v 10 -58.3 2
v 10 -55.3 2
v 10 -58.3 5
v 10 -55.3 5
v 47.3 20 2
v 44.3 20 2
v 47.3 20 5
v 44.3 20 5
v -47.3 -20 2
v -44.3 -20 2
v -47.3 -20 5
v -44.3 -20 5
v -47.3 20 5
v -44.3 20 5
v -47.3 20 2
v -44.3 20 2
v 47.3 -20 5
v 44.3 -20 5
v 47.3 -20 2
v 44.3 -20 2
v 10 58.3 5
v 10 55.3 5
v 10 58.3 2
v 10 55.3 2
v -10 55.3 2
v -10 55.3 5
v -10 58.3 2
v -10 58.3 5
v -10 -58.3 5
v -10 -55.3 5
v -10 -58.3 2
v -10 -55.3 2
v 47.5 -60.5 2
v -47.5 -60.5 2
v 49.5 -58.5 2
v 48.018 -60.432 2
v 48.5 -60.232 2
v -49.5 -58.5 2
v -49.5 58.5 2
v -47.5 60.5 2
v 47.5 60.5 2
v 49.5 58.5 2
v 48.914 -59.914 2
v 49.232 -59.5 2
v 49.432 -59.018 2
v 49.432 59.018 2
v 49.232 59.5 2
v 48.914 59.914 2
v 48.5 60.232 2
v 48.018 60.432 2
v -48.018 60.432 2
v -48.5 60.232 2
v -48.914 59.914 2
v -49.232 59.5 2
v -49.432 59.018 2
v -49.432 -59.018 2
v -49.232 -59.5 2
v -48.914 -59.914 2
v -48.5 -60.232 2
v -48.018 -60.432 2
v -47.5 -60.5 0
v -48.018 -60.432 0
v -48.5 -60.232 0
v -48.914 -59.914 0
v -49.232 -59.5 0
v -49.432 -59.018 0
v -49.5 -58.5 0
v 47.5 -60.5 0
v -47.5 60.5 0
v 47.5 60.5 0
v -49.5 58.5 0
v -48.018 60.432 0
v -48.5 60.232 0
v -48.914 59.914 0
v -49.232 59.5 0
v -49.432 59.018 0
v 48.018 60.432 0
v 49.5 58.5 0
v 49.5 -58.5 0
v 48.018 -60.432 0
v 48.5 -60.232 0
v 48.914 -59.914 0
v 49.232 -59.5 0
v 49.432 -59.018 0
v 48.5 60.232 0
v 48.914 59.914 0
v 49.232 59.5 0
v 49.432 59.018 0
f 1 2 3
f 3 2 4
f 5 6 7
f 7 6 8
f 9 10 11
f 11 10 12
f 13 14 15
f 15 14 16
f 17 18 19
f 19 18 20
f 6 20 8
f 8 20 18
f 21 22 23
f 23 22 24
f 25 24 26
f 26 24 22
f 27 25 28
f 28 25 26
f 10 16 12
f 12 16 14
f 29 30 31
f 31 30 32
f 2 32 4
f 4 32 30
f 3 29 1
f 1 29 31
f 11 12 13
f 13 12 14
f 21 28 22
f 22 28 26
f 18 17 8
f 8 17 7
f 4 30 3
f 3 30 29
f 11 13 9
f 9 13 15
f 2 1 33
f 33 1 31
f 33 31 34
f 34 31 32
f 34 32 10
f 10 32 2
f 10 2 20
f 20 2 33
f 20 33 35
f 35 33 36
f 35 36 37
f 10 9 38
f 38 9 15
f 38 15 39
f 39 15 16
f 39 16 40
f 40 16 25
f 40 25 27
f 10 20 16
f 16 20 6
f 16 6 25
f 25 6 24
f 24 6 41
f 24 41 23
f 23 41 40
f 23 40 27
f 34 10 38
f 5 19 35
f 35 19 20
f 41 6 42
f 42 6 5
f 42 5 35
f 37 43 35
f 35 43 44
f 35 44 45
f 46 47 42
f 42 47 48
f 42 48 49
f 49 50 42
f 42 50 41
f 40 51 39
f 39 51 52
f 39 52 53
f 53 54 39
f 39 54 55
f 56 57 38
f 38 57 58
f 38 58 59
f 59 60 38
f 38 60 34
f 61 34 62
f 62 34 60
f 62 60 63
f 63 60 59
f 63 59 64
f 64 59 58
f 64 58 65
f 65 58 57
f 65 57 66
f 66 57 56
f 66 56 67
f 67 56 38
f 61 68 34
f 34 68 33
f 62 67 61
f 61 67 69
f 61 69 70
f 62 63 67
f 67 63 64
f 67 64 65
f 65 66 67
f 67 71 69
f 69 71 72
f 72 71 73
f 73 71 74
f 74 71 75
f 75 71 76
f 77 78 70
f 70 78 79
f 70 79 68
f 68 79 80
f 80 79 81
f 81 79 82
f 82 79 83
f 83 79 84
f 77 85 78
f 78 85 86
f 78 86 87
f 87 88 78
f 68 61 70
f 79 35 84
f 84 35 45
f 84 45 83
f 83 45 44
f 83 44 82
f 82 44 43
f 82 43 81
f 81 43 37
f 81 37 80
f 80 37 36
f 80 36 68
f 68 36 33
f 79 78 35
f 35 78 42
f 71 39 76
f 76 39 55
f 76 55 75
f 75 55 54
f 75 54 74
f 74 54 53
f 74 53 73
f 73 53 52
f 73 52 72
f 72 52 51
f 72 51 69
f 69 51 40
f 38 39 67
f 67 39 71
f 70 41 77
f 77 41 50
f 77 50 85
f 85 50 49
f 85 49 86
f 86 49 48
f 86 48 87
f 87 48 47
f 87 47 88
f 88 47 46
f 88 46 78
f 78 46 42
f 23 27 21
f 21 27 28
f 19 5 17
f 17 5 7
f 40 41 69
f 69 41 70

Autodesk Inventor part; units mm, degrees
ref_plane "YZ Plane" through (0, 0, 0) normal (1, 0, 0) x (0, 1, 0)
ref_plane "XZ Plane" through (0, 0, 0) normal (0, 1, 0) x (-1, 0, 0)
ref_plane "XY Plane" through (0, 0, 0) normal (0, 0, 1) x (1, 0, 0)
sketch "Sketch1" plane through (0, 0, 0) normal (0, 0, 1) x (1, 0, 0)
  line L0 (-49.5, 60.5) -> (49.5, 60.5)
  line L1 (49.5, 60.5) -> (49.5, -60.5)
  line L2 (49.5, -60.5) -> (-49.5, -60.5)
  line L3 (-49.5, -60.5) -> (-49.5, 60.5)
  line L4 (-49.5, 60.5) -> (49.5, -60.5) construction
  line L5 (49.5, 60.5) -> (-49.5, -60.5) construction
  point P0 (0, 0)
  dimension "d0" = 99
  dimension "d1" = 121
extrude "Extrusion1" add sketch "Sketch1" along normal blind 2
sketch "Sketch2" plane through (0, 0, 2) normal (0, 0, 1) x (1, 0, 0)
  line L0 (-47.3, 58.3) -> (47.3, 58.3)
  line L1 (47.3, 58.3) -> (47.3, -58.3)
  line L2 (47.3, -58.3) -> (-47.3, -58.3)
  line L3 (-47.3, -58.3) -> (-47.3, 58.3)
  line L4 (-47.3, 58.3) -> (47.3, -58.3) construction
  line L5 (47.3, 58.3) -> (-47.3, -58.3) construction
  point P0 (0, 0)
  dimension "d4" = 116.6
  dimension "d5" = 94.6
extrude "Extrusion2" add sketch "Sketch2" along normal blind 3
fillet "Fillet1" radius 2 4 edges at (49.5, 60.5, 1) (-49.5, 60.5, 1) (49.5, -60.5, 1) (-49.5, -60.5, 1)
sketch "Sketch5" plane through (0, 0, 5) normal (0, 0, 1) x (1, 0, 0)
  line L0 (44.3, -55.3) -> (-44.3, -55.3)
  line L1 (-44.3, -55.3) -> (-44.3, 55.3)
  line L2 (-44.3, 55.3) -> (44.3, 55.3)
  line L3 (44.3, 55.3) -> (44.3, -55.3)
  line L4 (44.3, -55.3) -> (-44.3, 55.3) construction
  line L5 (-44.3, -55.3) -> (44.3, 55.3) construction
  line L6 (47.3, 58.3) -> (-47.3, 58.3) projected
  line L7 (47.3, -58.3) -> (47.3, 58.3) projected
  line L8 (-78.6, 90.6) -> (-10, 90.6)
  line L9 (-10, 90.6) -> (-10, 20)
  line L10 (-10, 20) -> (-78.6, 20)
  line L11 (-78.6, 20) -> (-78.6, 90.6)
  line L12 (-78.6, 90.6) -> (-10, 20) construction
  line L13 (-10, 90.6) -> (-78.6, 20) construction
  line L14 (78.6, 90.6) -> (10, 90.6)
  line L15 (10, 90.6) -> (10, 20)
  line L16 (10, 20) -> (78.6, 20)
  line L17 (78.6, 20) -> (78.6, 90.6)
  line L18 (78.6, 90.6) -> (10, 20) construction
  line L19 (10, 90.6) -> (78.6, 20) construction
  line L20 (10, -20) -> (78.6, -20)
  line L21 (78.6, -20) -> (78.6, -90.6)
  line L22 (78.6, -90.6) -> (10, -90.6)
  line L23 (10, -90.6) -> (10, -20)
  line L24 (10, -20) -> (78.6, -90.6) construction
  line L25 (78.6, -20) -> (10, -90.6) construction
  line L26 (-78.6, -90.6) -> (-10, -90.6)
  line L27 (-10, -90.6) -> (-10, -20)
  line L28 (-10, -20) -> (-78.6, -20)
  line L29 (-78.6, -20) -> (-78.6, -90.6)
  line L30 (-78.6, -90.6) -> (-10, -20) construction
  line L31 (-10, -90.6) -> (-78.6, -20) construction
  point P0 (0, 0)
  point P1 (-10, -55.3)
  point P2 (-44.3, -20)
  point P3 (44.3, -20)
  point P4 (10, -55.3)
  point P5 (-44.3, 20)
  point P6 (-10, 55.3)
  point P7 (10, 55.3)
  point P8 (44.3, 20)
  dimension "d23" = 3
  dimension "d24" = 3
  dimension "d27" = 20
  dimension "d28" = 40
extrude "Extrusion5" cut sketch "Sketch5" against normal up to surface (3 mm away) contours L3 L20 L21 L22 L23 L0 | L0 L23 L20 L3 | L0 L27 L28 L1 L10 L9 L2 L15 L16 L3 L20 L23 | L27 L26 L29 L28 L1 L0 | L0 L1 L28 L27 | L16 L15 L2 L3 | L3 L2 L15 L6 L7 L16 | L7 L6 L15 L14 L17 L16 | L10 L11 L8 L9 L2 L1 | L1 L2 L9 L10
equation "\"BendRadius\" = Thickness"
equation "\"BendReliefWidth\" = Thickness"
equation "\"BendReliefDepth\" = 0.5 * Thickness"
equation "\"CornerReliefSize\" = 4 * Thickness"
equation "\"MinimumRemnant\" = 2 * Thickness"
equation "\"TransitionRadius\" = BendRadius"
equation "\"JacobiRadiusSize\" = BendRadius"
equation "\"GapSize\" = Thickness"
equation "\"Thickness\" = 3.048"
properties part number "_3DPrint"
